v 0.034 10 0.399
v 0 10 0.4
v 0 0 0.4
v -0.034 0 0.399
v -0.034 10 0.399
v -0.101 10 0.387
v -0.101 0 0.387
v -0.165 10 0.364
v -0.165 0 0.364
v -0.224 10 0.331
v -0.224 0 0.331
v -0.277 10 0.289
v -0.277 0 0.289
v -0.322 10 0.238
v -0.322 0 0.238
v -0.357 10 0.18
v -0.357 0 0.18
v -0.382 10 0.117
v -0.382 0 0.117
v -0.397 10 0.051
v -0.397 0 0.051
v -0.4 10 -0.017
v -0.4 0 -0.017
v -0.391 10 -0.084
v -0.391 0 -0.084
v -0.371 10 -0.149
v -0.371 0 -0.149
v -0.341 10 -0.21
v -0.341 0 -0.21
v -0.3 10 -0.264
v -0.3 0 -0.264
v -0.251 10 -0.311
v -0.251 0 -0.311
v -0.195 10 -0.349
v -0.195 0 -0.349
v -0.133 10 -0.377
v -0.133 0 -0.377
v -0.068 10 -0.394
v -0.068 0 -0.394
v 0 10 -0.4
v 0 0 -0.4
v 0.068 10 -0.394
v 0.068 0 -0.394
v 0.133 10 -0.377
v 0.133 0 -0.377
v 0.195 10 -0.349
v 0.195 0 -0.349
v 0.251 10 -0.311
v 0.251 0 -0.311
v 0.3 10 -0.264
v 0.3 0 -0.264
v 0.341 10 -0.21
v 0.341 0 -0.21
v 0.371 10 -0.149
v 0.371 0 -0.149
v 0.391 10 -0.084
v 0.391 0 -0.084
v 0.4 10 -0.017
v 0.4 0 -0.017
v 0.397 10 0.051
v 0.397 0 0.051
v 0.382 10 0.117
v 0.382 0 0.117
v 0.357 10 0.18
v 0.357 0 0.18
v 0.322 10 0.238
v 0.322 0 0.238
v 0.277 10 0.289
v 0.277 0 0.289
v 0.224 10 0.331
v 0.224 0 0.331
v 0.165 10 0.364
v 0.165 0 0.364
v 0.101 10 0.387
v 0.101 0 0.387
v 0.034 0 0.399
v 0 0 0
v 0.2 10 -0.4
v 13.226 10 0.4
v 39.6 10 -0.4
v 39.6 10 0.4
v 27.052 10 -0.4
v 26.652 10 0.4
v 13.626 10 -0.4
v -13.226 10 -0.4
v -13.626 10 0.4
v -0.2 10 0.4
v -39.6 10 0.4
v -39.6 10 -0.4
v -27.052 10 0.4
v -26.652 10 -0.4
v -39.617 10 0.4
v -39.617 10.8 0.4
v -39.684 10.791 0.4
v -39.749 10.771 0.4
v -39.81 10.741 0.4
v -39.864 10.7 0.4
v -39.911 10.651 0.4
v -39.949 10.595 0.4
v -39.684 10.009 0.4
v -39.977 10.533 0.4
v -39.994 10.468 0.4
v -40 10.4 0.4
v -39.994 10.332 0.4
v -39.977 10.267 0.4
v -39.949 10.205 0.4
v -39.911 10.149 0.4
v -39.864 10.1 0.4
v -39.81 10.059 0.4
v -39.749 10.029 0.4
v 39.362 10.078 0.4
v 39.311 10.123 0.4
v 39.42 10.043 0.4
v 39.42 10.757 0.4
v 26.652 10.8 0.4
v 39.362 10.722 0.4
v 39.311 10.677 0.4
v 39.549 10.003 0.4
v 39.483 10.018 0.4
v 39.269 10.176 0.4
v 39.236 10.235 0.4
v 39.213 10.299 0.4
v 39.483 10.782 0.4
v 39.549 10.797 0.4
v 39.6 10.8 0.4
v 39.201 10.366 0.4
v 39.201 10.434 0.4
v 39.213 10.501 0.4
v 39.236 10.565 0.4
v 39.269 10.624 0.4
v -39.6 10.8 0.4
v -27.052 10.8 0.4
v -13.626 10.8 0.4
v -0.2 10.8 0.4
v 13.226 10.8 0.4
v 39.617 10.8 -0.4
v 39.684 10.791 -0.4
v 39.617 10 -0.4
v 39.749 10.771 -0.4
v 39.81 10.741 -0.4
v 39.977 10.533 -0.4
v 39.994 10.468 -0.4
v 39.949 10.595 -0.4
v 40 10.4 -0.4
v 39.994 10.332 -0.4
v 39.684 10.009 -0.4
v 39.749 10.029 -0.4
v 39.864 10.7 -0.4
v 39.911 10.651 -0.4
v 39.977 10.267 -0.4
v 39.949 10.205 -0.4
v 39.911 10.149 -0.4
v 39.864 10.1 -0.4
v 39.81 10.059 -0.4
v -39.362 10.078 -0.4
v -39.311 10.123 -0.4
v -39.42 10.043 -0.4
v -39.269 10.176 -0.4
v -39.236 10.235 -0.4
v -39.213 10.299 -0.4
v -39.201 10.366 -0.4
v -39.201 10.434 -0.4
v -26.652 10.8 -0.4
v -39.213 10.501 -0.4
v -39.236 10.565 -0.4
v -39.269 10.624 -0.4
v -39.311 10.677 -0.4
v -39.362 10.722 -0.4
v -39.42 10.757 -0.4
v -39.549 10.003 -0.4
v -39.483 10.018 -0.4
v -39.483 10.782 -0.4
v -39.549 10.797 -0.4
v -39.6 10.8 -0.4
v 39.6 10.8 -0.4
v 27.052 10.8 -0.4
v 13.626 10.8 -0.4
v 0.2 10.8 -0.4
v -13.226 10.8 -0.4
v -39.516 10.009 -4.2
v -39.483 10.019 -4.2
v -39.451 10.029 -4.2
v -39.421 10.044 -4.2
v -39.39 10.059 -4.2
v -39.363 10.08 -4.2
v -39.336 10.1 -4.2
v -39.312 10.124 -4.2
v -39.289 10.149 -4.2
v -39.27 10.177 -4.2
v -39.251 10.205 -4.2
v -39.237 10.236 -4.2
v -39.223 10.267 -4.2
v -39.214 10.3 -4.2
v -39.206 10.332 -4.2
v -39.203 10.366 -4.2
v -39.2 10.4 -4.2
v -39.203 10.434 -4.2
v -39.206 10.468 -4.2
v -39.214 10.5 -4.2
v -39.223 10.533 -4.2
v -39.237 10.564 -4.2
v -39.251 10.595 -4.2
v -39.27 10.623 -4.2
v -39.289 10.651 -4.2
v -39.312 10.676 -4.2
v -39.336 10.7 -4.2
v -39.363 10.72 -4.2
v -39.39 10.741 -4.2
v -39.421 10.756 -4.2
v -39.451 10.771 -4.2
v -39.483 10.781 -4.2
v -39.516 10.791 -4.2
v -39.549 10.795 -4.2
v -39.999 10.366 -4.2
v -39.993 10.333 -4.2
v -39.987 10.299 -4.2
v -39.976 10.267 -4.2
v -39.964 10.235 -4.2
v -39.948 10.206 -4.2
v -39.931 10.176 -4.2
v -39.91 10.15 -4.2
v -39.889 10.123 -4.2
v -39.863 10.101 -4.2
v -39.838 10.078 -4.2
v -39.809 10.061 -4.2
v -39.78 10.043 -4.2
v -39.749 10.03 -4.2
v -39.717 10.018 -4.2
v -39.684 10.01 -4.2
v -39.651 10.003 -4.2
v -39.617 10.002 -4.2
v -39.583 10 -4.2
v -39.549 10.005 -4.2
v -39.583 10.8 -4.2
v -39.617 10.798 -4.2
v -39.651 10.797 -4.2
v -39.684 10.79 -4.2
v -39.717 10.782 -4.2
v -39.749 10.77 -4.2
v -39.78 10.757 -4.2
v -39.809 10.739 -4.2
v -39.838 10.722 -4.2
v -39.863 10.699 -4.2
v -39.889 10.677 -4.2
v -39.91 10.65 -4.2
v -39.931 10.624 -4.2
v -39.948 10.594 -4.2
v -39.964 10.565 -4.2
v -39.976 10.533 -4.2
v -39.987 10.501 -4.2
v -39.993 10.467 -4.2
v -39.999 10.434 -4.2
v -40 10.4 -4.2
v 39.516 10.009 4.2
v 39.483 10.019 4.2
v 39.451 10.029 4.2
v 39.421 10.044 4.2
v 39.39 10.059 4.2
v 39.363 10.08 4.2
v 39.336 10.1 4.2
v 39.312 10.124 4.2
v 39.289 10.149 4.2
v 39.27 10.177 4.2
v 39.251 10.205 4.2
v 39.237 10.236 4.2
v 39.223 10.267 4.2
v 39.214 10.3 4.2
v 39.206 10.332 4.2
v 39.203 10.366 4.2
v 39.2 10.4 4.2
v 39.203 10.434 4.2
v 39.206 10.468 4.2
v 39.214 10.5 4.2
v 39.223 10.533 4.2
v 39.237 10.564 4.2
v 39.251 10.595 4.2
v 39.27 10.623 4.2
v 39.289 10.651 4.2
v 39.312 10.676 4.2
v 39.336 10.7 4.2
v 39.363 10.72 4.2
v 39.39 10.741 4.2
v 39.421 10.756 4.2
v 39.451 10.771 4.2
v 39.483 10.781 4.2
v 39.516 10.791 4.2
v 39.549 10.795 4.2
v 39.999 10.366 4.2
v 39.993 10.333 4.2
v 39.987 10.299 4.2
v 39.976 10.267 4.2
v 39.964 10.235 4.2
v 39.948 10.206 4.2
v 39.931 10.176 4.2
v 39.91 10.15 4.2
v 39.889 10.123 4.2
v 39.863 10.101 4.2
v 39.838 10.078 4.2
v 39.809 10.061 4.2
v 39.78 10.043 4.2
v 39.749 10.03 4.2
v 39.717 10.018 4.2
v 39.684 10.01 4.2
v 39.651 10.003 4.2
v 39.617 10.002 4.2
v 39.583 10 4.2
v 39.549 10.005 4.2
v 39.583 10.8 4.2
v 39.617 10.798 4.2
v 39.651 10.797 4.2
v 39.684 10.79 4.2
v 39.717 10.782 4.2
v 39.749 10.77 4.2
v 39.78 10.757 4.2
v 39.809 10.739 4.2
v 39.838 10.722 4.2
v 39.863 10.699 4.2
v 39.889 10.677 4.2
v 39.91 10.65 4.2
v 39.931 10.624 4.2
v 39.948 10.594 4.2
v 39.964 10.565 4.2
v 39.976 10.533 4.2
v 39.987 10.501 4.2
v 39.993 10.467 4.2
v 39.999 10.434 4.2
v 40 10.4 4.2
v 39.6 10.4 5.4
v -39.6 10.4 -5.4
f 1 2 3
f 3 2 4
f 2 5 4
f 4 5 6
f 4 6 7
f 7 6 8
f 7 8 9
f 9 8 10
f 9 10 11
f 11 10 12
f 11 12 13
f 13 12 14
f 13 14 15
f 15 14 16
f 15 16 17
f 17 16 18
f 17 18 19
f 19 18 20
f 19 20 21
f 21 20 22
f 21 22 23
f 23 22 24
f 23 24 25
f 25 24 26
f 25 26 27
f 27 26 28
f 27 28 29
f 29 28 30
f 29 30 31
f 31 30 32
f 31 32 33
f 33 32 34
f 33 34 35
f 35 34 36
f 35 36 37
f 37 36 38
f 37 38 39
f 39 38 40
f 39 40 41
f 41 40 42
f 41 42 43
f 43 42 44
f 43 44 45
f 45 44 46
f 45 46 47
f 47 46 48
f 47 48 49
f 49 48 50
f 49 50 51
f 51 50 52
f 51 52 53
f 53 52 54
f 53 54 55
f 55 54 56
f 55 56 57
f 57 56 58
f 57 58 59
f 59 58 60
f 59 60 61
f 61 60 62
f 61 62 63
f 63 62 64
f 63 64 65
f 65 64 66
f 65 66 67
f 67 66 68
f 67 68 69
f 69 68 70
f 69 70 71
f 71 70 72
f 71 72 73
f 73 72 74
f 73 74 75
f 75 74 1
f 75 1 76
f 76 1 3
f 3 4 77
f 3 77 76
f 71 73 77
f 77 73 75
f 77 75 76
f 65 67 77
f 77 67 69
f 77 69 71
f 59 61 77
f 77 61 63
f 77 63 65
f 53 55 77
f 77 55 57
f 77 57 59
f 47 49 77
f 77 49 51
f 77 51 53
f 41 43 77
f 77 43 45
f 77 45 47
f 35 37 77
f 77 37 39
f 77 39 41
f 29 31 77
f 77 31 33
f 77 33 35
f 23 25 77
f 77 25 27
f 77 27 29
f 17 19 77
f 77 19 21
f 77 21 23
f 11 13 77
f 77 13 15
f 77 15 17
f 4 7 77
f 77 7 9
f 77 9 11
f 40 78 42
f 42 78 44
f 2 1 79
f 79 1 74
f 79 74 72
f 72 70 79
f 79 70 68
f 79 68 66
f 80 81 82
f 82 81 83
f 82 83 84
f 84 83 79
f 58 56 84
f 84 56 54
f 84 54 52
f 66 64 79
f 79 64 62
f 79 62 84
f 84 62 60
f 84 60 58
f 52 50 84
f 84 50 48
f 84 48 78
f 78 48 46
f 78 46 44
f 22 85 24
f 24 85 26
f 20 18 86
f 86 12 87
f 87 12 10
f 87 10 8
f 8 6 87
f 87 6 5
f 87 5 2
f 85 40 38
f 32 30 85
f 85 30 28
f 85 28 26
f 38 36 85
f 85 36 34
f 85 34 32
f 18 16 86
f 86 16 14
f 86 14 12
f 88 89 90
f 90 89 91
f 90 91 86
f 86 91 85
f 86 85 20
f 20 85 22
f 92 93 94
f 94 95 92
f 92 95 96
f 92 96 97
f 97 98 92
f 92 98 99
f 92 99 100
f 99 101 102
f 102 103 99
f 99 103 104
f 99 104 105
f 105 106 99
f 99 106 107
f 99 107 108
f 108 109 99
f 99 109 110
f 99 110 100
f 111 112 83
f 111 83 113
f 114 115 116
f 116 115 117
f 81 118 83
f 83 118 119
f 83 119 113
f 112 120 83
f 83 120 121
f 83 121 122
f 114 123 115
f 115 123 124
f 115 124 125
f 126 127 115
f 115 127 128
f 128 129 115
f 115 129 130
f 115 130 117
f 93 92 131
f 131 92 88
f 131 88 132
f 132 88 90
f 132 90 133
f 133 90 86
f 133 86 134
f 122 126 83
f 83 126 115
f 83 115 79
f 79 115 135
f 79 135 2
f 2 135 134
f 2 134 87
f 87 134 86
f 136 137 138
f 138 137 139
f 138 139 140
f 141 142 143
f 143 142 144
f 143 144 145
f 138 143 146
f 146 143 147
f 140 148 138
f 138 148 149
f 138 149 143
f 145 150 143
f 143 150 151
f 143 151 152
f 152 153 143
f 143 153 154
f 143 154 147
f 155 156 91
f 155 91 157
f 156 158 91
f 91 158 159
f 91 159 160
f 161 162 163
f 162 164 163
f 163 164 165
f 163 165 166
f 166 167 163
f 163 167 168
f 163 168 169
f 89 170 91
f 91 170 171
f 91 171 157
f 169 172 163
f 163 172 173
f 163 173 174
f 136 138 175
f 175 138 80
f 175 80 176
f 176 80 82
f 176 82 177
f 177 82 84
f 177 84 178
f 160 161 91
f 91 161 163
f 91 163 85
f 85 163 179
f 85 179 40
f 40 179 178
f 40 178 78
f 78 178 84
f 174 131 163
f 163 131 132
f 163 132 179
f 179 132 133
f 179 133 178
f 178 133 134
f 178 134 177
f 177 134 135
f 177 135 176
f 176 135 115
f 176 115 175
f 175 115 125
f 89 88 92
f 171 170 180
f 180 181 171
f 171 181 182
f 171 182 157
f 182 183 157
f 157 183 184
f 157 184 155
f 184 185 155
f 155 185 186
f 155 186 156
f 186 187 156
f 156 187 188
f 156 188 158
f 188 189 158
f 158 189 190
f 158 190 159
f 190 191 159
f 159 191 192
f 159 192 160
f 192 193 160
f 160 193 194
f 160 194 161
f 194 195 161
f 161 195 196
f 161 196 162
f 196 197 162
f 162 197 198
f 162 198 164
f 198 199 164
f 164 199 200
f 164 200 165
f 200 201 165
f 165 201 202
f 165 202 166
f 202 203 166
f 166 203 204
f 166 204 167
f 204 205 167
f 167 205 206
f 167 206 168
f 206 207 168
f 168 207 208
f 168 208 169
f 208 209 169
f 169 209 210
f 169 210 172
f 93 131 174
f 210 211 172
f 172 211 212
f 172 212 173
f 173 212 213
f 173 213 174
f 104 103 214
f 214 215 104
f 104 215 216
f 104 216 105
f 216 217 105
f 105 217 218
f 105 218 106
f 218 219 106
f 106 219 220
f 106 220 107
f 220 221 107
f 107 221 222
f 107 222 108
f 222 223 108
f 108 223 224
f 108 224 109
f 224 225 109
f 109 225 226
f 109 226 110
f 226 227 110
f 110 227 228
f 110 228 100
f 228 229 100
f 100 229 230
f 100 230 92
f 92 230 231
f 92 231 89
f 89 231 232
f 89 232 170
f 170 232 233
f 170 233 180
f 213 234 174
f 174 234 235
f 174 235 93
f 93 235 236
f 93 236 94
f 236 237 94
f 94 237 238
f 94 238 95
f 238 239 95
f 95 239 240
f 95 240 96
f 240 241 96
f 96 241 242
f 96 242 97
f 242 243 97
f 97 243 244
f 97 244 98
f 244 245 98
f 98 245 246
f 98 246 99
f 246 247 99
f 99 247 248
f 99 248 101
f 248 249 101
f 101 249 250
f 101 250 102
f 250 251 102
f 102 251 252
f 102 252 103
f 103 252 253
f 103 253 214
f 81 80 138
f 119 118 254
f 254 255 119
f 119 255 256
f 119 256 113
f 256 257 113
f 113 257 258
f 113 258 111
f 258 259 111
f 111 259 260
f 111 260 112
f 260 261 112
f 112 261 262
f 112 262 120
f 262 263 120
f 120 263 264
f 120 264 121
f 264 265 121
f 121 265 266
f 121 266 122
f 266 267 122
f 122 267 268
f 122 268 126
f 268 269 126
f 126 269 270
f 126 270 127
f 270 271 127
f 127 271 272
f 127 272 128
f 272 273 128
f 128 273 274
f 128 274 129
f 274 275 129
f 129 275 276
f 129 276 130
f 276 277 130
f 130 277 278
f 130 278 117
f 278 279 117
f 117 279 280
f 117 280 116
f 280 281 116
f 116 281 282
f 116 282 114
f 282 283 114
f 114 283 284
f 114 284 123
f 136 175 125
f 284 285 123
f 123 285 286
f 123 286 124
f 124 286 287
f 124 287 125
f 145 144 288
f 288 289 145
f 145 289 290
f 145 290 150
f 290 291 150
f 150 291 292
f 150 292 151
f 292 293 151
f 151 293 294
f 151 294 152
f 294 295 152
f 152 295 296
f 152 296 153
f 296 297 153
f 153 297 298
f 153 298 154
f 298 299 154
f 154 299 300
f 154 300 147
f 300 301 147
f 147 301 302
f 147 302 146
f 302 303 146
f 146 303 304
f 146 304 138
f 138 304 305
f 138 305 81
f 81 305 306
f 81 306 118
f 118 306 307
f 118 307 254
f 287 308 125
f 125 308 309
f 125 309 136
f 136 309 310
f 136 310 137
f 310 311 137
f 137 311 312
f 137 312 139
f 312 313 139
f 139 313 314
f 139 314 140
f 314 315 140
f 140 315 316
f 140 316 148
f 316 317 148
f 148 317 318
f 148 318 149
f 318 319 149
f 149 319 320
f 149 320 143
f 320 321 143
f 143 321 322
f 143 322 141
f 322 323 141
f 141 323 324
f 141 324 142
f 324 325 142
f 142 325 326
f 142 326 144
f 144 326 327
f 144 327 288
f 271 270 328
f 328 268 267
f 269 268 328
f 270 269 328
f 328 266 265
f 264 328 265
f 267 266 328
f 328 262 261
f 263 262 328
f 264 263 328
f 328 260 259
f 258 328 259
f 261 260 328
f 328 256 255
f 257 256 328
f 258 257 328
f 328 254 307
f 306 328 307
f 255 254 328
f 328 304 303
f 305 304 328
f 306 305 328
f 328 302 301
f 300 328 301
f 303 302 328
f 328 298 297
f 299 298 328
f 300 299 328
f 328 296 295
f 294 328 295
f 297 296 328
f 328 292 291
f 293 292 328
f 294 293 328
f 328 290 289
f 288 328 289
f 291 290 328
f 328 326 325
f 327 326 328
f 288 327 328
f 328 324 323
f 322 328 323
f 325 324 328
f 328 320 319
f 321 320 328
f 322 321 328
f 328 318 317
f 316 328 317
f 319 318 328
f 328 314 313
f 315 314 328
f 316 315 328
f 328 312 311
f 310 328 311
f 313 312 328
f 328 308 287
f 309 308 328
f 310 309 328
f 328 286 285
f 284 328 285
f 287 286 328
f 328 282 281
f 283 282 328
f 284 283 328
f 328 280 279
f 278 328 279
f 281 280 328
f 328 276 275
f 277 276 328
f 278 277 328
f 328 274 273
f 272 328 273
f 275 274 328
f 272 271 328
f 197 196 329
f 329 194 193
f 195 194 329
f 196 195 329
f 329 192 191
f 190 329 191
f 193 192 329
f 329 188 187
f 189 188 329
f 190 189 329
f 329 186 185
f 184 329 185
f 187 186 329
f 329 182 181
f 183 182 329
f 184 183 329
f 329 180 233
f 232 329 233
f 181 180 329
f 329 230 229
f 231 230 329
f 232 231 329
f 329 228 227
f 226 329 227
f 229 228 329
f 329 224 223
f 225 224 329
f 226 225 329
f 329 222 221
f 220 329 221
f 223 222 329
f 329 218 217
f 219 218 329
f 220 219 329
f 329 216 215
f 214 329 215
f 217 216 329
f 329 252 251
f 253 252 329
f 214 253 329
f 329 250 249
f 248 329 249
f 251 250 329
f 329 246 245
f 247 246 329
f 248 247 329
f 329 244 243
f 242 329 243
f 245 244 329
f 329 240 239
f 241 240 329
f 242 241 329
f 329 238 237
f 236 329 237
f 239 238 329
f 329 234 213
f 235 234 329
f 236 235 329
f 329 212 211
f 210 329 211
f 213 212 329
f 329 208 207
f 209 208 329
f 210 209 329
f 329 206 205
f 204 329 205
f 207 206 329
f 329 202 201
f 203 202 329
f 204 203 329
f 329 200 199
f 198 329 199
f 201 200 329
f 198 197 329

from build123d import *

# Parameters (mm, degrees)
SKETCH_1_R      = 0.4
EXTRUDE_1_DEPTH = 10
SKETCH_2_W      = 80
SKETCH_2_H      = 0.8
EXTRUDE_2_DEPTH = 0.8
FILLET_1_R      = 0.4
SKETCH_3_R      = 0.4
EXTRUDE_3_DEPTH = 3.8
SKETCH_4_R      = 0.4
EXTRUDE_4_DEPTH = 3.8


with BuildPart() as part:
    # 草图1 → 凸台-拉伸1 (new body)
    with BuildSketch(Plane(origin=(0, 0, 0), x_dir=(1, 0, 0), z_dir=(0, 1, 0))):
        with Locations(Location((0, 0, 0), (0, 0, 270))):
            Circle(SKETCH_1_R)
    extrude(amount=EXTRUDE_1_DEPTH)

    # 草图2 → 凸台-拉伸2 (add)
    with BuildSketch(Plane(origin=(0, 10, 0), x_dir=(1, 0, 0), z_dir=(0, 1, 0))):
        Rectangle(SKETCH_2_W, SKETCH_2_H)
    extrude(amount=EXTRUDE_2_DEPTH)

    # 圆角1
    fillet_1_edges = [part.edges().sort_by_distance(p)[0] for p in [
        (40, 10, 0),
        (40, 10.8, 0),
        (-40, 10, 0),
        (-40, 10.8, 0),
    ]]
    fillet(fillet_1_edges, radius=FILLET_1_R - 0.0001)  # a hair under: the kernel refuses the full size

    # 草图3 → 凸台-拉伸3 (add)
    with BuildSketch(Plane.XY.offset(0.4)):
        with Locations((39.6, 10.4)):
            Circle(SKETCH_3_R)
    extrude(amount=EXTRUDE_3_DEPTH)

    # 草图4 → 凸台-拉伸4 (add)
    with BuildSketch(Plane(origin=(0, 0, -0.4), x_dir=(-1, 0, 0), z_dir=(0, 0, -1))):
        with Locations((39.6, 10.4)):
            Circle(SKETCH_4_R)
    extrude(amount=EXTRUDE_4_DEPTH)

    # 草图5 → 旋转1 (revolve)
    with BuildSketch(Plane(origin=(0, 10.4, 0), x_dir=(1, 0, 0), z_dir=(0, 1, 0))):
        Polygon((39.6, -4.2), (39.6, -5.4), (40, -4.2), align=None)
    revolve(axis=Axis((39.6, 10.4, 4.2), (0, 0, 1)))

    # 草图6 → 旋转2 (revolve)
    with BuildSketch(Plane(origin=(0, 10.4, 0), x_dir=(1, 0, 0), z_dir=(0, 1, 0))):
        Polygon((-39.6, 4.2), (-39.6, 5.4), (-40, 4.2), align=None)
    revolve(axis=Axis((-39.6, 10.4, -4.2), (0, 0, -1)))


solid = part.part
